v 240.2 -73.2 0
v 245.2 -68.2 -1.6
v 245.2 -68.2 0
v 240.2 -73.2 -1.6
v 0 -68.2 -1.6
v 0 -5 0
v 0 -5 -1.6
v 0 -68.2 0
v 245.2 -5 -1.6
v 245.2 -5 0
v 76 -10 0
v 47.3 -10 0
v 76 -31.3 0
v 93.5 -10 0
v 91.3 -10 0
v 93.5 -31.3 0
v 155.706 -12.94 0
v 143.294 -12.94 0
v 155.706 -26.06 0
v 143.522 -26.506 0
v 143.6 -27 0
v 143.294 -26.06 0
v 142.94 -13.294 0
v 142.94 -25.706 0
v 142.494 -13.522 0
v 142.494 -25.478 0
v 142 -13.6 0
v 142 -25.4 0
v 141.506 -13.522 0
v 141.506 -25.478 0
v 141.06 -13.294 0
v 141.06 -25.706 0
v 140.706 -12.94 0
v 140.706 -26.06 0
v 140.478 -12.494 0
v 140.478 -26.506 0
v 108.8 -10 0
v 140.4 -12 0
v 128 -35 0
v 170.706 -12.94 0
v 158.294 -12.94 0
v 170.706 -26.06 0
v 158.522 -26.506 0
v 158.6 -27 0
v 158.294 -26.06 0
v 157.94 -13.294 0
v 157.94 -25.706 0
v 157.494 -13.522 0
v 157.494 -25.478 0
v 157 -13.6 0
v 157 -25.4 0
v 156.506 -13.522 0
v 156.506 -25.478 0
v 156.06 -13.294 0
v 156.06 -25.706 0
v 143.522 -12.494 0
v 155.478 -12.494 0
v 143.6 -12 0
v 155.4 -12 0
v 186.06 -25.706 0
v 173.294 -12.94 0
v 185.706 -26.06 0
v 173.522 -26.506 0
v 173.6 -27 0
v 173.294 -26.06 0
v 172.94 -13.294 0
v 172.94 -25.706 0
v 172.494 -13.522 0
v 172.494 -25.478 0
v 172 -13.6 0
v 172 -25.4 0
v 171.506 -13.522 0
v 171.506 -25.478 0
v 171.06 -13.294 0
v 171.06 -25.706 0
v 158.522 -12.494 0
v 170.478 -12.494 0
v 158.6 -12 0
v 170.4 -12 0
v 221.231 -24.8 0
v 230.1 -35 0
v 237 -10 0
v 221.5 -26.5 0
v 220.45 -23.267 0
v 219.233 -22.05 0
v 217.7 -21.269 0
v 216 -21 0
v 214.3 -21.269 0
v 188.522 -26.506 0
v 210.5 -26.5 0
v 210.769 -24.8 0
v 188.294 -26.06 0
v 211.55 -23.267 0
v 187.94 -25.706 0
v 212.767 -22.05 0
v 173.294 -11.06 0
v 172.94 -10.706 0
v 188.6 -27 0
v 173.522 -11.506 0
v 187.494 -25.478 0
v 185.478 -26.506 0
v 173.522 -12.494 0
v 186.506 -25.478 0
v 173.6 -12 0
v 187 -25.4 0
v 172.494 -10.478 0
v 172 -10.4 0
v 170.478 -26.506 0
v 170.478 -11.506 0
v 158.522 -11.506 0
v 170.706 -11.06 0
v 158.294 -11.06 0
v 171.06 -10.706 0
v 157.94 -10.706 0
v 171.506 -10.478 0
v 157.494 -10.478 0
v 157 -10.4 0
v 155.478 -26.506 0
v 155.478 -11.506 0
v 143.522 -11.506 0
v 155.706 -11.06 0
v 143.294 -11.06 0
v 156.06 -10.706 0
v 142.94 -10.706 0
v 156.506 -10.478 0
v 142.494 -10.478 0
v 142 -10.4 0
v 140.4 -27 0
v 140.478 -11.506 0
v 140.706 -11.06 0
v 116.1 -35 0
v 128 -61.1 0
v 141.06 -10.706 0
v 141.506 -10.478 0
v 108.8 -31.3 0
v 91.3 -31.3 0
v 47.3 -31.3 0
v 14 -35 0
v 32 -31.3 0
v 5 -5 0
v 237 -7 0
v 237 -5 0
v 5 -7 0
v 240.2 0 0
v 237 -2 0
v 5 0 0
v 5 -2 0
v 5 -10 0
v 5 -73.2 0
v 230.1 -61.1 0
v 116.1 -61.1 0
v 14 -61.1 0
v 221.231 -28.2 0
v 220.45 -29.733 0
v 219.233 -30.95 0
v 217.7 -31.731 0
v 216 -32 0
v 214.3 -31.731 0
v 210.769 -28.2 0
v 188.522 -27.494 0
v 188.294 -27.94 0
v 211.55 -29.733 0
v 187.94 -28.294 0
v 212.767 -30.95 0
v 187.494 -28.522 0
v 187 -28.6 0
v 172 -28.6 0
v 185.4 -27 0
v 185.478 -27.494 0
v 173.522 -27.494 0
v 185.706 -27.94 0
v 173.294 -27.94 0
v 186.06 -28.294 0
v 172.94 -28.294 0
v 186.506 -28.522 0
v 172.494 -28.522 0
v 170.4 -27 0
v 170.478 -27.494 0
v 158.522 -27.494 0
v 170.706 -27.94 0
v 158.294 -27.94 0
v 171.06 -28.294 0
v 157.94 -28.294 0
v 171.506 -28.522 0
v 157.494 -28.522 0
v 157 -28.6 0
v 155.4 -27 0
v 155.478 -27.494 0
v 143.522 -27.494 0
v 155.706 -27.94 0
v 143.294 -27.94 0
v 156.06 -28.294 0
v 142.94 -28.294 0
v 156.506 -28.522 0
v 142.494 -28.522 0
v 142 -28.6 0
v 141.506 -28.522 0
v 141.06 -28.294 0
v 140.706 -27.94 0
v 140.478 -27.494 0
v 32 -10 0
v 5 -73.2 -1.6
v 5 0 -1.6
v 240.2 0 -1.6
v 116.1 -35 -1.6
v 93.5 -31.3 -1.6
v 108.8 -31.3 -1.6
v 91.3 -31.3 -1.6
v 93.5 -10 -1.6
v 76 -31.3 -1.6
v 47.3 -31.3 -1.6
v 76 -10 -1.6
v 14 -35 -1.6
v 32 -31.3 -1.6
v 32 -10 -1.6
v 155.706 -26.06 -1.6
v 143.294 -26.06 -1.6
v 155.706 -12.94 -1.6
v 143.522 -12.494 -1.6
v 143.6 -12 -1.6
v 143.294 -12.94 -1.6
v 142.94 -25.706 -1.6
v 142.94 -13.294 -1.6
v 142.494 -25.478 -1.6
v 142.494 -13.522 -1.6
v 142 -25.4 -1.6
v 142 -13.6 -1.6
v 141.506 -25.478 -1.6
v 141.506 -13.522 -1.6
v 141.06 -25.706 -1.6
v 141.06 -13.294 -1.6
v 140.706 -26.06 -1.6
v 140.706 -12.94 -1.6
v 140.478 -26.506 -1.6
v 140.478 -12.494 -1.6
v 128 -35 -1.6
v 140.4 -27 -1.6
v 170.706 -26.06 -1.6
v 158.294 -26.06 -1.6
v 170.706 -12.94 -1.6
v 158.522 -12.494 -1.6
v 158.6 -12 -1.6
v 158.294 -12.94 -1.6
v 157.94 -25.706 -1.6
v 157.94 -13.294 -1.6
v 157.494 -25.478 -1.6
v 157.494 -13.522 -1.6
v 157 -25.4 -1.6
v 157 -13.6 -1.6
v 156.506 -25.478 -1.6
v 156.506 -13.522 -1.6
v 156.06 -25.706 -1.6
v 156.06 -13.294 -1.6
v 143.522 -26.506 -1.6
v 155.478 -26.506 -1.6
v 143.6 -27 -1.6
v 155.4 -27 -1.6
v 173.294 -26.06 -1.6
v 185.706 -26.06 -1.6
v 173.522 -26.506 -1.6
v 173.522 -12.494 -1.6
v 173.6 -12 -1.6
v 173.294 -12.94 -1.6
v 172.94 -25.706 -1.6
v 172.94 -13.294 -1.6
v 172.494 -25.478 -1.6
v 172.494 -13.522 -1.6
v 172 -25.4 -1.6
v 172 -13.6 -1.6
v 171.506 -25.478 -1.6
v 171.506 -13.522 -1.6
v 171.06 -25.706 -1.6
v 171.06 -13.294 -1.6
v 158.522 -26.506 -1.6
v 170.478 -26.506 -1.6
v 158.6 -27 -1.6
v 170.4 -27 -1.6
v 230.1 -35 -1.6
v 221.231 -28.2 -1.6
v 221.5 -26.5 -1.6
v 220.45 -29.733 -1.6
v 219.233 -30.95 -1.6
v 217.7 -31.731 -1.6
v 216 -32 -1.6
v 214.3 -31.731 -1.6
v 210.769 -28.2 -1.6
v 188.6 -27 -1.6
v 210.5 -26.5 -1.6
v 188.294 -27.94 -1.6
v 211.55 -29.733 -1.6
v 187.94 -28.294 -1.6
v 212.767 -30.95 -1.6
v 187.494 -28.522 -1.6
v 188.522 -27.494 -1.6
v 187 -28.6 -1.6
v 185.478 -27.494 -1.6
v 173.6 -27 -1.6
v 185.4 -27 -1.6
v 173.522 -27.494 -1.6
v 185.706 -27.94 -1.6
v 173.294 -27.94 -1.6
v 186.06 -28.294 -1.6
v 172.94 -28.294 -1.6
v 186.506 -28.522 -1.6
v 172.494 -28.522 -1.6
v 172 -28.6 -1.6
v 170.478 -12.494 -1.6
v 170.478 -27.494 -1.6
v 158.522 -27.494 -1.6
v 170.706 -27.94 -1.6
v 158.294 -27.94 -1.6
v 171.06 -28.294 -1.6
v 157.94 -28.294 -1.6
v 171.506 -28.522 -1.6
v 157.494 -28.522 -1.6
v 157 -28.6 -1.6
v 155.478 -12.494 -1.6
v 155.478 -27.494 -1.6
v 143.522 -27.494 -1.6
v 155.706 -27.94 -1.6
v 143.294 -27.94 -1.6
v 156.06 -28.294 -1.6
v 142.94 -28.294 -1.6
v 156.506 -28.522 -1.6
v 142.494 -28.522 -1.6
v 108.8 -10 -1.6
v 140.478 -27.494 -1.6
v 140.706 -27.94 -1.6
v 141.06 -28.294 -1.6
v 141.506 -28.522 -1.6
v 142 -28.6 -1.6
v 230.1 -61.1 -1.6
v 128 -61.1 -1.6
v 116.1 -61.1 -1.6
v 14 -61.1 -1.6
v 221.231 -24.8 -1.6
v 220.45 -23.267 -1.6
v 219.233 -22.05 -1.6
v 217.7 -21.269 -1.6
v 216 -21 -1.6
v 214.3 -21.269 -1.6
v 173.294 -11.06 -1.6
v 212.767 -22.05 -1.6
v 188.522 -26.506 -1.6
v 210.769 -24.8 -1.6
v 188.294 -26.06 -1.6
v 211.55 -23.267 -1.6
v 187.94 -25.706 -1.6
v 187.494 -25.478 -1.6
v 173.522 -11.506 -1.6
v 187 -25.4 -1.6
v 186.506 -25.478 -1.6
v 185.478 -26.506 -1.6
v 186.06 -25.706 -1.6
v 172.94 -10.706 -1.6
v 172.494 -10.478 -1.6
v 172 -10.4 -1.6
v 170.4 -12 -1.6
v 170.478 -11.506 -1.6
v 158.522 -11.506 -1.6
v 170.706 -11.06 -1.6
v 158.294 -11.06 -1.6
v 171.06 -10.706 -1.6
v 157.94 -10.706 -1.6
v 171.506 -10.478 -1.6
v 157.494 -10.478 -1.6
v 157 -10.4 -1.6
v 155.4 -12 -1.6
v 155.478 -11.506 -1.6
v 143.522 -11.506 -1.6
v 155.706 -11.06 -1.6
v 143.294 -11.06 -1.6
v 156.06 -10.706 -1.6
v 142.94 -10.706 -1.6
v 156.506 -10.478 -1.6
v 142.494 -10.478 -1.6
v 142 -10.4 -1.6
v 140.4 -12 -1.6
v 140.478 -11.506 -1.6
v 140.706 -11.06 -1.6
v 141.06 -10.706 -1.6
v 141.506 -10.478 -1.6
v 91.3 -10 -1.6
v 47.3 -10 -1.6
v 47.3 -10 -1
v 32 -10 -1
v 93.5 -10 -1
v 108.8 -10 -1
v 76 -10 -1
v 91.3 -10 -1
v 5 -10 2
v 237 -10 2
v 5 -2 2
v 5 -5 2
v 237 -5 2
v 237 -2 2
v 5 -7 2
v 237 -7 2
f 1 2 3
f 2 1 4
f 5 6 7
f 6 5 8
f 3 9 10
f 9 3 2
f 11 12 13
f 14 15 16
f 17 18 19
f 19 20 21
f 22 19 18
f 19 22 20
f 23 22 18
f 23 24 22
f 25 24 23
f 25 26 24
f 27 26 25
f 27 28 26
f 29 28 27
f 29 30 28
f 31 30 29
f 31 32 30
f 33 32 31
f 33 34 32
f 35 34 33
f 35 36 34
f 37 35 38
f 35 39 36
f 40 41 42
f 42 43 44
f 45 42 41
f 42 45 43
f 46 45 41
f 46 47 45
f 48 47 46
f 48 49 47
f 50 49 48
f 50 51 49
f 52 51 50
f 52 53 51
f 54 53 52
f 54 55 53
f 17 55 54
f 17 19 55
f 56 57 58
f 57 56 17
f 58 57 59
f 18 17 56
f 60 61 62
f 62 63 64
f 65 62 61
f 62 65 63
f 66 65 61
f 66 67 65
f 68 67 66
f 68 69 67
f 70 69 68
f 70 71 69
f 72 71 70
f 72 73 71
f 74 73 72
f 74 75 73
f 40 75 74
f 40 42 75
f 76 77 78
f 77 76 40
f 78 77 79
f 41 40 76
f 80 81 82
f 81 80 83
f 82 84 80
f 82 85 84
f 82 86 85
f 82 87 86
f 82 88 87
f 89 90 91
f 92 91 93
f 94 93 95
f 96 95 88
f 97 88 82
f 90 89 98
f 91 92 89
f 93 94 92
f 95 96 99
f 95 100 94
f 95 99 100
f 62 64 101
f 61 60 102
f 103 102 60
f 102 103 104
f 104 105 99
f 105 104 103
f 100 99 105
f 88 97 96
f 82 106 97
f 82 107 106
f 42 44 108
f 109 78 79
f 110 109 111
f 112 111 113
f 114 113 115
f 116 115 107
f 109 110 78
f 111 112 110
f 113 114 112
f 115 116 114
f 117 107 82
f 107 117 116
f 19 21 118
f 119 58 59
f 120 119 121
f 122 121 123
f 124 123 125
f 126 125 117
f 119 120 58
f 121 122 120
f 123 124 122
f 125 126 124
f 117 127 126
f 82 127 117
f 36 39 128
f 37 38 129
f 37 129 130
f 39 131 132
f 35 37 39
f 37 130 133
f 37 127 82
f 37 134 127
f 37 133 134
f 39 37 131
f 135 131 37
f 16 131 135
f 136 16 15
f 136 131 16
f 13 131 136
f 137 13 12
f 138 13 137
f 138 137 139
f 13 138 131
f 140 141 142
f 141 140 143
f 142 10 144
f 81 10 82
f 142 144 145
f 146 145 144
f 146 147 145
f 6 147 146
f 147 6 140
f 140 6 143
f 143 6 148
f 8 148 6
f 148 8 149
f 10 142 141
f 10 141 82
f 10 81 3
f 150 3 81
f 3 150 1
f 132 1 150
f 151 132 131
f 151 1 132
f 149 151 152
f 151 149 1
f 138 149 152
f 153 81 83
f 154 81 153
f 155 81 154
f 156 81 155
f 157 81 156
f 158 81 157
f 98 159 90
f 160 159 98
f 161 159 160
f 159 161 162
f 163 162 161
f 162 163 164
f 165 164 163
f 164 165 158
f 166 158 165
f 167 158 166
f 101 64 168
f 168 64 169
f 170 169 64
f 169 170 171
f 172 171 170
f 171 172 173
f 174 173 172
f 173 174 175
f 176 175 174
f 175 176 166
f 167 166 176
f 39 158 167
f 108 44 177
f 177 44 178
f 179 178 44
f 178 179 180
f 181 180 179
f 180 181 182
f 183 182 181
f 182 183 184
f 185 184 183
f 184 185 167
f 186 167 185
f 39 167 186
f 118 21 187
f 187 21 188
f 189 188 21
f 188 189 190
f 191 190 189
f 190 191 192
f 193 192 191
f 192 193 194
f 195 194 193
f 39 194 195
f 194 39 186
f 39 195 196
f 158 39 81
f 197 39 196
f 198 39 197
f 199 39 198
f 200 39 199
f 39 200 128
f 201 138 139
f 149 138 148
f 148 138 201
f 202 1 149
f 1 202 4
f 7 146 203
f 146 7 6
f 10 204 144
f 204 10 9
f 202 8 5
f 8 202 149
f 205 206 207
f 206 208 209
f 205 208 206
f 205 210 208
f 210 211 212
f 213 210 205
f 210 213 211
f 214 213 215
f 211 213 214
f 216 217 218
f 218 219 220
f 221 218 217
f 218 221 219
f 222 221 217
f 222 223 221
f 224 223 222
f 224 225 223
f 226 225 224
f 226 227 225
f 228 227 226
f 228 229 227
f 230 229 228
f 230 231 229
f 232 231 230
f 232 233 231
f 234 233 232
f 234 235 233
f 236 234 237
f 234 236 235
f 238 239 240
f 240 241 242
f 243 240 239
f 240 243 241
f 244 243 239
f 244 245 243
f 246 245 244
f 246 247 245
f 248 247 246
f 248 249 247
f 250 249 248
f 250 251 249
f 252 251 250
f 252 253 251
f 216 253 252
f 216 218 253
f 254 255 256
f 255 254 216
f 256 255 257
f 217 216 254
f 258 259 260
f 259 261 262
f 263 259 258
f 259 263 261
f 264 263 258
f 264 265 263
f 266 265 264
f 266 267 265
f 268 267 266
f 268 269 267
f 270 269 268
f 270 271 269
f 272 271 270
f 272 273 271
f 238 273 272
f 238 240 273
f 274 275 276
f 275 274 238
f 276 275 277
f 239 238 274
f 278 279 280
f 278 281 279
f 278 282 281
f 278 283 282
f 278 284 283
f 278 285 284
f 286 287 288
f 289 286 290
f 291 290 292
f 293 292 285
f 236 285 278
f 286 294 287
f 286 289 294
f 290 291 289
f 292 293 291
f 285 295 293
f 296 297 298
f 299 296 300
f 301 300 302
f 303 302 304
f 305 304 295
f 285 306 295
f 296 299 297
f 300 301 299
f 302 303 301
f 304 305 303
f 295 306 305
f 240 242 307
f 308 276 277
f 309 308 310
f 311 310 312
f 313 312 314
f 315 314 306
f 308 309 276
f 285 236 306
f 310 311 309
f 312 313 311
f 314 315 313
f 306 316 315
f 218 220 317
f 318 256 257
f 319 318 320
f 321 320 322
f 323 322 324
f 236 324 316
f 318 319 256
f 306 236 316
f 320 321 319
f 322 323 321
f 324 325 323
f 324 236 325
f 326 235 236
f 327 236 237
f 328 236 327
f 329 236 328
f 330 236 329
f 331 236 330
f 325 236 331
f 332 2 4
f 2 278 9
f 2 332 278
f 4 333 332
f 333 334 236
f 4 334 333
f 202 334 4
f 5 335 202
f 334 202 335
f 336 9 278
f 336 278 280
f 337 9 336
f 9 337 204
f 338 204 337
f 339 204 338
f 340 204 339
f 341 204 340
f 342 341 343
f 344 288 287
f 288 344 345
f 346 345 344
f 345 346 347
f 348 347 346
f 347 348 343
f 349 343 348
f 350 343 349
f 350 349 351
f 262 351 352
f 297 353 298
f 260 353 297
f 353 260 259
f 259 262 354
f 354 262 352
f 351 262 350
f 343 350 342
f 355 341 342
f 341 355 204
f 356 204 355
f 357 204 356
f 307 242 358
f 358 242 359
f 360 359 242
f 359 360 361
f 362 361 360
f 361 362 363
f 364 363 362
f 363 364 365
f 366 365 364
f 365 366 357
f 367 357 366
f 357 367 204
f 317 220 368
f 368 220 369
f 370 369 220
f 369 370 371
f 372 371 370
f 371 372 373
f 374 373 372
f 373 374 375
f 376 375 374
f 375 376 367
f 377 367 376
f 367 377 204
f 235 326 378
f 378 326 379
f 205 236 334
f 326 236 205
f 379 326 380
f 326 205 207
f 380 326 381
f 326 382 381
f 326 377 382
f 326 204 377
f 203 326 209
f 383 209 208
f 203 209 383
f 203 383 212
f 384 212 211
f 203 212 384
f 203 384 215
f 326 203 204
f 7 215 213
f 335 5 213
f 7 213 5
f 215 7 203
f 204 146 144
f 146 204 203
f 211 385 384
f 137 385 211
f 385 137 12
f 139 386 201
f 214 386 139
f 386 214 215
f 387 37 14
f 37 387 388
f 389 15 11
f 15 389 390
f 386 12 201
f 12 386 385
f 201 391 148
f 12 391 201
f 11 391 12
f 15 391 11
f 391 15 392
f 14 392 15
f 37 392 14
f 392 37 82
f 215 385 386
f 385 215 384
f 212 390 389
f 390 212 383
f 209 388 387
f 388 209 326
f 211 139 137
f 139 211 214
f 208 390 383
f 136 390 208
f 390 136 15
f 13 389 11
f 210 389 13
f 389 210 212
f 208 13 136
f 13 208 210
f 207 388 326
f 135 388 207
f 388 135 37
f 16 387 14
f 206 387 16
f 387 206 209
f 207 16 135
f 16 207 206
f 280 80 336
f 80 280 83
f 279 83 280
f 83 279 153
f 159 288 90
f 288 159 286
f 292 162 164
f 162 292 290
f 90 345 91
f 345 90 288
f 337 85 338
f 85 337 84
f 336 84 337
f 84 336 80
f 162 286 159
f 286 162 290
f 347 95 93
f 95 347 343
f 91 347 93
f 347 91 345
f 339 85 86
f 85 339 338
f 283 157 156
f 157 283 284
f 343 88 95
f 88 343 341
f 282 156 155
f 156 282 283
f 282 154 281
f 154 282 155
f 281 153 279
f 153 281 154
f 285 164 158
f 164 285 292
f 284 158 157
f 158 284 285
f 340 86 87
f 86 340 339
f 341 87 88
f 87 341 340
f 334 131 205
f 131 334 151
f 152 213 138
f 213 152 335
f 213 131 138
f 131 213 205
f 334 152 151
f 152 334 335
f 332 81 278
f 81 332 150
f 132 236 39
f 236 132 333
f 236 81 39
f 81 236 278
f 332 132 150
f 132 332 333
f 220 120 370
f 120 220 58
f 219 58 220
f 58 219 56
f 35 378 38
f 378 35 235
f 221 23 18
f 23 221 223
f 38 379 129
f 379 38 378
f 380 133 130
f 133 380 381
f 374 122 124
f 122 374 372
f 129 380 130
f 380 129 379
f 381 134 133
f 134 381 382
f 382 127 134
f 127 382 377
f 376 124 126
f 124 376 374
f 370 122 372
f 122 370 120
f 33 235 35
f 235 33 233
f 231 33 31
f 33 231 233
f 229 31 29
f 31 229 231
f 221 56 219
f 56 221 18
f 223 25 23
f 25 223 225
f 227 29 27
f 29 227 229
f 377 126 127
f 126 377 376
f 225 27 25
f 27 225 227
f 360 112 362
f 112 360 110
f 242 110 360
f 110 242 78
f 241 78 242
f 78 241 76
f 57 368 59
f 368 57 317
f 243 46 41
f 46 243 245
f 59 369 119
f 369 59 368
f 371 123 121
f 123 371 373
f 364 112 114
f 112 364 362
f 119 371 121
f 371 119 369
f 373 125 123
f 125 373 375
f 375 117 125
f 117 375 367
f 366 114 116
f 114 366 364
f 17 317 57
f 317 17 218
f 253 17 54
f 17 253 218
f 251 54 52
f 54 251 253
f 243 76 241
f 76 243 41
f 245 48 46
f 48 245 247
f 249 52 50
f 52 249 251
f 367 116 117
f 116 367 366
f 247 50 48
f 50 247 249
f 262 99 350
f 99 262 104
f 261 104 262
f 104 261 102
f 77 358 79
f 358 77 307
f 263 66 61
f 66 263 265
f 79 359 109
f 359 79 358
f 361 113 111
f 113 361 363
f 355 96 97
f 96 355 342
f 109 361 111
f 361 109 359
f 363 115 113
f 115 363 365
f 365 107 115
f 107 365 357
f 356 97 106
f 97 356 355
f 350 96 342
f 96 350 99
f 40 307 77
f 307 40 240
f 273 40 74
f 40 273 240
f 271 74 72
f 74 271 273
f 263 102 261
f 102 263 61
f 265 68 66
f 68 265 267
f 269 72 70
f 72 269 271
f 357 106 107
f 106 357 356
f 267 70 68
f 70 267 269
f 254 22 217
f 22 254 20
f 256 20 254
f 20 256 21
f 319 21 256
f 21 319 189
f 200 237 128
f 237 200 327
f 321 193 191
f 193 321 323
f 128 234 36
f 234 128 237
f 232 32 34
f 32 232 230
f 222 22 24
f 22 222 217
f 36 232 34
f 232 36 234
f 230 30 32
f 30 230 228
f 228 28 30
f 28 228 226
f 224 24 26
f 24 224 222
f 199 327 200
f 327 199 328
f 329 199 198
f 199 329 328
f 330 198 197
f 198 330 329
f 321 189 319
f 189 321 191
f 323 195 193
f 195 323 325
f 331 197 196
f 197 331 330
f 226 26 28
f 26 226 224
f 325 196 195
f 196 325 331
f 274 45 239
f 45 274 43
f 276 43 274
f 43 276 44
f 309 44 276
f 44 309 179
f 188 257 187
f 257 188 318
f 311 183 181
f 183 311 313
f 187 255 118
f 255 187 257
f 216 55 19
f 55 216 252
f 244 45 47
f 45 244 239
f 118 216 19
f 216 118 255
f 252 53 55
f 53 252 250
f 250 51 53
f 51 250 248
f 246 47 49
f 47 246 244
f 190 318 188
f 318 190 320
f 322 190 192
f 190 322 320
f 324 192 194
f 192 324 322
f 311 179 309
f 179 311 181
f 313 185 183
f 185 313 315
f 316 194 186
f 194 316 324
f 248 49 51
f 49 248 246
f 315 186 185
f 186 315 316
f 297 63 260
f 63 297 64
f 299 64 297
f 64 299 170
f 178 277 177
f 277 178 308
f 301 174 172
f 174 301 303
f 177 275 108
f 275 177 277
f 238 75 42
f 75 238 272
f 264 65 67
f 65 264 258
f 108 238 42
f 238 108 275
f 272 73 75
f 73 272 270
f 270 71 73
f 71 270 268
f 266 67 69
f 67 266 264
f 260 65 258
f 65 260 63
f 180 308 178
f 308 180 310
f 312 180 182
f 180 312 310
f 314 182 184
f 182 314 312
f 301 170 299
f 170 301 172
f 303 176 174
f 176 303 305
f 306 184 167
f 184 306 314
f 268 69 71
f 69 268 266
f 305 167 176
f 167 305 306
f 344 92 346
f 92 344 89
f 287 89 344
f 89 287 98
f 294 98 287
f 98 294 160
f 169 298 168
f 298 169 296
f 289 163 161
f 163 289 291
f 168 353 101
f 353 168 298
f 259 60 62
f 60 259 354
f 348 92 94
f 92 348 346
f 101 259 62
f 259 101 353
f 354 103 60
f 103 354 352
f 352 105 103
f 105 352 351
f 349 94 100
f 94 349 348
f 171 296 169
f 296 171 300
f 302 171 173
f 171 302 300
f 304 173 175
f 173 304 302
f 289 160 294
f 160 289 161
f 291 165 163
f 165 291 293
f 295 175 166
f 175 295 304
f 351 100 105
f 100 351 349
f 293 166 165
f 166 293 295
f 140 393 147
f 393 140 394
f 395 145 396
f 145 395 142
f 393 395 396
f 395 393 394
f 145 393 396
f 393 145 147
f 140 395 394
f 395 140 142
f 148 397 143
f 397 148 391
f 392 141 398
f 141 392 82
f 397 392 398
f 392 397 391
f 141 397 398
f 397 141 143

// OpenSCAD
$fn = 20;

thick = 2;
tf = 1.2;

xmax = 250;
ymax = 180+thick;
zmax = 39*2;

ledx = 142;
ledy = 12;

edge=5;

rotate([180,0,0])
    shape();

module shape() {
    
    echo("Floppy start:", 14);
    echo("Switch start:", 32);
    echo("Switch start:", 75);
    echo("Switch start:", 94);
    
    difference(){
        base_shape();
        
        translate([32, 10, 0])
            switch();
        translate([76, 10, 0])
            switch();
        translate([93.5, 10, 0])
            switch();
        
        translate([216, 26.5, 0])
            reset();
        
        translate([14, 35, 0])
            floppy();
        translate([128, 35, 0])
            floppy();

        translate([ledx, ledy, 0])
            led();
        translate([ledx+15, ledy, 0])
            led();
        translate([ledx+2*15, ledy, 0])
            led();
            
        translate([ledx, ledy+15, 0])
            led();
        translate([ledx+15, ledy+15, 0])
            led();
        translate([ledx+2*15, ledy+15, 0])
            led();
        translate([ledx+3*15, ledy+15, 0])
            led();
        
    }
    
//    translate([edge, zmax-4*thick-edge, -thick])
//        cube([xmax-2*edge-4*thick, 3, 3]);

    translate([edge, 2, -thick])
        cube([xmax-2*edge-4*thick, 3, 3]);

    translate([edge, 7, -thick])
        cube([xmax-2*edge-4*thick, 3, 3]);

}

module led() {
    linear_extrude(thick)
        circle(1.6); 
}

module floppy() {
    linear_extrude(thick)
        square([102 + 0.1, 26 + 0.1]);
}

module reset() {
    linear_extrude(thick)
        circle(5.5); 
}

module switch() {
    linear_extrude(thick)
        square([15 + 0.3, 21 + 0.3]);
}

module base_shape() {
    
    rotate([0,0,0])
    linear_extrude(1.6)
        base_shape_2d(thick * tf);

}

module base_shape_2d(th) {
    
    echo("width:", xmax-2*th);
    echo("height:", zmax-2*th);
    
    polygon([[0, zmax-edge-2*th], [0, edge], [edge,0], [xmax-edge-2*th, 0], [xmax-2*th, edge], [xmax-2*th, zmax-edge-2*th],[xmax-edge-2*th, zmax-2*th], [edge, zmax-2*th]  ]);
}
